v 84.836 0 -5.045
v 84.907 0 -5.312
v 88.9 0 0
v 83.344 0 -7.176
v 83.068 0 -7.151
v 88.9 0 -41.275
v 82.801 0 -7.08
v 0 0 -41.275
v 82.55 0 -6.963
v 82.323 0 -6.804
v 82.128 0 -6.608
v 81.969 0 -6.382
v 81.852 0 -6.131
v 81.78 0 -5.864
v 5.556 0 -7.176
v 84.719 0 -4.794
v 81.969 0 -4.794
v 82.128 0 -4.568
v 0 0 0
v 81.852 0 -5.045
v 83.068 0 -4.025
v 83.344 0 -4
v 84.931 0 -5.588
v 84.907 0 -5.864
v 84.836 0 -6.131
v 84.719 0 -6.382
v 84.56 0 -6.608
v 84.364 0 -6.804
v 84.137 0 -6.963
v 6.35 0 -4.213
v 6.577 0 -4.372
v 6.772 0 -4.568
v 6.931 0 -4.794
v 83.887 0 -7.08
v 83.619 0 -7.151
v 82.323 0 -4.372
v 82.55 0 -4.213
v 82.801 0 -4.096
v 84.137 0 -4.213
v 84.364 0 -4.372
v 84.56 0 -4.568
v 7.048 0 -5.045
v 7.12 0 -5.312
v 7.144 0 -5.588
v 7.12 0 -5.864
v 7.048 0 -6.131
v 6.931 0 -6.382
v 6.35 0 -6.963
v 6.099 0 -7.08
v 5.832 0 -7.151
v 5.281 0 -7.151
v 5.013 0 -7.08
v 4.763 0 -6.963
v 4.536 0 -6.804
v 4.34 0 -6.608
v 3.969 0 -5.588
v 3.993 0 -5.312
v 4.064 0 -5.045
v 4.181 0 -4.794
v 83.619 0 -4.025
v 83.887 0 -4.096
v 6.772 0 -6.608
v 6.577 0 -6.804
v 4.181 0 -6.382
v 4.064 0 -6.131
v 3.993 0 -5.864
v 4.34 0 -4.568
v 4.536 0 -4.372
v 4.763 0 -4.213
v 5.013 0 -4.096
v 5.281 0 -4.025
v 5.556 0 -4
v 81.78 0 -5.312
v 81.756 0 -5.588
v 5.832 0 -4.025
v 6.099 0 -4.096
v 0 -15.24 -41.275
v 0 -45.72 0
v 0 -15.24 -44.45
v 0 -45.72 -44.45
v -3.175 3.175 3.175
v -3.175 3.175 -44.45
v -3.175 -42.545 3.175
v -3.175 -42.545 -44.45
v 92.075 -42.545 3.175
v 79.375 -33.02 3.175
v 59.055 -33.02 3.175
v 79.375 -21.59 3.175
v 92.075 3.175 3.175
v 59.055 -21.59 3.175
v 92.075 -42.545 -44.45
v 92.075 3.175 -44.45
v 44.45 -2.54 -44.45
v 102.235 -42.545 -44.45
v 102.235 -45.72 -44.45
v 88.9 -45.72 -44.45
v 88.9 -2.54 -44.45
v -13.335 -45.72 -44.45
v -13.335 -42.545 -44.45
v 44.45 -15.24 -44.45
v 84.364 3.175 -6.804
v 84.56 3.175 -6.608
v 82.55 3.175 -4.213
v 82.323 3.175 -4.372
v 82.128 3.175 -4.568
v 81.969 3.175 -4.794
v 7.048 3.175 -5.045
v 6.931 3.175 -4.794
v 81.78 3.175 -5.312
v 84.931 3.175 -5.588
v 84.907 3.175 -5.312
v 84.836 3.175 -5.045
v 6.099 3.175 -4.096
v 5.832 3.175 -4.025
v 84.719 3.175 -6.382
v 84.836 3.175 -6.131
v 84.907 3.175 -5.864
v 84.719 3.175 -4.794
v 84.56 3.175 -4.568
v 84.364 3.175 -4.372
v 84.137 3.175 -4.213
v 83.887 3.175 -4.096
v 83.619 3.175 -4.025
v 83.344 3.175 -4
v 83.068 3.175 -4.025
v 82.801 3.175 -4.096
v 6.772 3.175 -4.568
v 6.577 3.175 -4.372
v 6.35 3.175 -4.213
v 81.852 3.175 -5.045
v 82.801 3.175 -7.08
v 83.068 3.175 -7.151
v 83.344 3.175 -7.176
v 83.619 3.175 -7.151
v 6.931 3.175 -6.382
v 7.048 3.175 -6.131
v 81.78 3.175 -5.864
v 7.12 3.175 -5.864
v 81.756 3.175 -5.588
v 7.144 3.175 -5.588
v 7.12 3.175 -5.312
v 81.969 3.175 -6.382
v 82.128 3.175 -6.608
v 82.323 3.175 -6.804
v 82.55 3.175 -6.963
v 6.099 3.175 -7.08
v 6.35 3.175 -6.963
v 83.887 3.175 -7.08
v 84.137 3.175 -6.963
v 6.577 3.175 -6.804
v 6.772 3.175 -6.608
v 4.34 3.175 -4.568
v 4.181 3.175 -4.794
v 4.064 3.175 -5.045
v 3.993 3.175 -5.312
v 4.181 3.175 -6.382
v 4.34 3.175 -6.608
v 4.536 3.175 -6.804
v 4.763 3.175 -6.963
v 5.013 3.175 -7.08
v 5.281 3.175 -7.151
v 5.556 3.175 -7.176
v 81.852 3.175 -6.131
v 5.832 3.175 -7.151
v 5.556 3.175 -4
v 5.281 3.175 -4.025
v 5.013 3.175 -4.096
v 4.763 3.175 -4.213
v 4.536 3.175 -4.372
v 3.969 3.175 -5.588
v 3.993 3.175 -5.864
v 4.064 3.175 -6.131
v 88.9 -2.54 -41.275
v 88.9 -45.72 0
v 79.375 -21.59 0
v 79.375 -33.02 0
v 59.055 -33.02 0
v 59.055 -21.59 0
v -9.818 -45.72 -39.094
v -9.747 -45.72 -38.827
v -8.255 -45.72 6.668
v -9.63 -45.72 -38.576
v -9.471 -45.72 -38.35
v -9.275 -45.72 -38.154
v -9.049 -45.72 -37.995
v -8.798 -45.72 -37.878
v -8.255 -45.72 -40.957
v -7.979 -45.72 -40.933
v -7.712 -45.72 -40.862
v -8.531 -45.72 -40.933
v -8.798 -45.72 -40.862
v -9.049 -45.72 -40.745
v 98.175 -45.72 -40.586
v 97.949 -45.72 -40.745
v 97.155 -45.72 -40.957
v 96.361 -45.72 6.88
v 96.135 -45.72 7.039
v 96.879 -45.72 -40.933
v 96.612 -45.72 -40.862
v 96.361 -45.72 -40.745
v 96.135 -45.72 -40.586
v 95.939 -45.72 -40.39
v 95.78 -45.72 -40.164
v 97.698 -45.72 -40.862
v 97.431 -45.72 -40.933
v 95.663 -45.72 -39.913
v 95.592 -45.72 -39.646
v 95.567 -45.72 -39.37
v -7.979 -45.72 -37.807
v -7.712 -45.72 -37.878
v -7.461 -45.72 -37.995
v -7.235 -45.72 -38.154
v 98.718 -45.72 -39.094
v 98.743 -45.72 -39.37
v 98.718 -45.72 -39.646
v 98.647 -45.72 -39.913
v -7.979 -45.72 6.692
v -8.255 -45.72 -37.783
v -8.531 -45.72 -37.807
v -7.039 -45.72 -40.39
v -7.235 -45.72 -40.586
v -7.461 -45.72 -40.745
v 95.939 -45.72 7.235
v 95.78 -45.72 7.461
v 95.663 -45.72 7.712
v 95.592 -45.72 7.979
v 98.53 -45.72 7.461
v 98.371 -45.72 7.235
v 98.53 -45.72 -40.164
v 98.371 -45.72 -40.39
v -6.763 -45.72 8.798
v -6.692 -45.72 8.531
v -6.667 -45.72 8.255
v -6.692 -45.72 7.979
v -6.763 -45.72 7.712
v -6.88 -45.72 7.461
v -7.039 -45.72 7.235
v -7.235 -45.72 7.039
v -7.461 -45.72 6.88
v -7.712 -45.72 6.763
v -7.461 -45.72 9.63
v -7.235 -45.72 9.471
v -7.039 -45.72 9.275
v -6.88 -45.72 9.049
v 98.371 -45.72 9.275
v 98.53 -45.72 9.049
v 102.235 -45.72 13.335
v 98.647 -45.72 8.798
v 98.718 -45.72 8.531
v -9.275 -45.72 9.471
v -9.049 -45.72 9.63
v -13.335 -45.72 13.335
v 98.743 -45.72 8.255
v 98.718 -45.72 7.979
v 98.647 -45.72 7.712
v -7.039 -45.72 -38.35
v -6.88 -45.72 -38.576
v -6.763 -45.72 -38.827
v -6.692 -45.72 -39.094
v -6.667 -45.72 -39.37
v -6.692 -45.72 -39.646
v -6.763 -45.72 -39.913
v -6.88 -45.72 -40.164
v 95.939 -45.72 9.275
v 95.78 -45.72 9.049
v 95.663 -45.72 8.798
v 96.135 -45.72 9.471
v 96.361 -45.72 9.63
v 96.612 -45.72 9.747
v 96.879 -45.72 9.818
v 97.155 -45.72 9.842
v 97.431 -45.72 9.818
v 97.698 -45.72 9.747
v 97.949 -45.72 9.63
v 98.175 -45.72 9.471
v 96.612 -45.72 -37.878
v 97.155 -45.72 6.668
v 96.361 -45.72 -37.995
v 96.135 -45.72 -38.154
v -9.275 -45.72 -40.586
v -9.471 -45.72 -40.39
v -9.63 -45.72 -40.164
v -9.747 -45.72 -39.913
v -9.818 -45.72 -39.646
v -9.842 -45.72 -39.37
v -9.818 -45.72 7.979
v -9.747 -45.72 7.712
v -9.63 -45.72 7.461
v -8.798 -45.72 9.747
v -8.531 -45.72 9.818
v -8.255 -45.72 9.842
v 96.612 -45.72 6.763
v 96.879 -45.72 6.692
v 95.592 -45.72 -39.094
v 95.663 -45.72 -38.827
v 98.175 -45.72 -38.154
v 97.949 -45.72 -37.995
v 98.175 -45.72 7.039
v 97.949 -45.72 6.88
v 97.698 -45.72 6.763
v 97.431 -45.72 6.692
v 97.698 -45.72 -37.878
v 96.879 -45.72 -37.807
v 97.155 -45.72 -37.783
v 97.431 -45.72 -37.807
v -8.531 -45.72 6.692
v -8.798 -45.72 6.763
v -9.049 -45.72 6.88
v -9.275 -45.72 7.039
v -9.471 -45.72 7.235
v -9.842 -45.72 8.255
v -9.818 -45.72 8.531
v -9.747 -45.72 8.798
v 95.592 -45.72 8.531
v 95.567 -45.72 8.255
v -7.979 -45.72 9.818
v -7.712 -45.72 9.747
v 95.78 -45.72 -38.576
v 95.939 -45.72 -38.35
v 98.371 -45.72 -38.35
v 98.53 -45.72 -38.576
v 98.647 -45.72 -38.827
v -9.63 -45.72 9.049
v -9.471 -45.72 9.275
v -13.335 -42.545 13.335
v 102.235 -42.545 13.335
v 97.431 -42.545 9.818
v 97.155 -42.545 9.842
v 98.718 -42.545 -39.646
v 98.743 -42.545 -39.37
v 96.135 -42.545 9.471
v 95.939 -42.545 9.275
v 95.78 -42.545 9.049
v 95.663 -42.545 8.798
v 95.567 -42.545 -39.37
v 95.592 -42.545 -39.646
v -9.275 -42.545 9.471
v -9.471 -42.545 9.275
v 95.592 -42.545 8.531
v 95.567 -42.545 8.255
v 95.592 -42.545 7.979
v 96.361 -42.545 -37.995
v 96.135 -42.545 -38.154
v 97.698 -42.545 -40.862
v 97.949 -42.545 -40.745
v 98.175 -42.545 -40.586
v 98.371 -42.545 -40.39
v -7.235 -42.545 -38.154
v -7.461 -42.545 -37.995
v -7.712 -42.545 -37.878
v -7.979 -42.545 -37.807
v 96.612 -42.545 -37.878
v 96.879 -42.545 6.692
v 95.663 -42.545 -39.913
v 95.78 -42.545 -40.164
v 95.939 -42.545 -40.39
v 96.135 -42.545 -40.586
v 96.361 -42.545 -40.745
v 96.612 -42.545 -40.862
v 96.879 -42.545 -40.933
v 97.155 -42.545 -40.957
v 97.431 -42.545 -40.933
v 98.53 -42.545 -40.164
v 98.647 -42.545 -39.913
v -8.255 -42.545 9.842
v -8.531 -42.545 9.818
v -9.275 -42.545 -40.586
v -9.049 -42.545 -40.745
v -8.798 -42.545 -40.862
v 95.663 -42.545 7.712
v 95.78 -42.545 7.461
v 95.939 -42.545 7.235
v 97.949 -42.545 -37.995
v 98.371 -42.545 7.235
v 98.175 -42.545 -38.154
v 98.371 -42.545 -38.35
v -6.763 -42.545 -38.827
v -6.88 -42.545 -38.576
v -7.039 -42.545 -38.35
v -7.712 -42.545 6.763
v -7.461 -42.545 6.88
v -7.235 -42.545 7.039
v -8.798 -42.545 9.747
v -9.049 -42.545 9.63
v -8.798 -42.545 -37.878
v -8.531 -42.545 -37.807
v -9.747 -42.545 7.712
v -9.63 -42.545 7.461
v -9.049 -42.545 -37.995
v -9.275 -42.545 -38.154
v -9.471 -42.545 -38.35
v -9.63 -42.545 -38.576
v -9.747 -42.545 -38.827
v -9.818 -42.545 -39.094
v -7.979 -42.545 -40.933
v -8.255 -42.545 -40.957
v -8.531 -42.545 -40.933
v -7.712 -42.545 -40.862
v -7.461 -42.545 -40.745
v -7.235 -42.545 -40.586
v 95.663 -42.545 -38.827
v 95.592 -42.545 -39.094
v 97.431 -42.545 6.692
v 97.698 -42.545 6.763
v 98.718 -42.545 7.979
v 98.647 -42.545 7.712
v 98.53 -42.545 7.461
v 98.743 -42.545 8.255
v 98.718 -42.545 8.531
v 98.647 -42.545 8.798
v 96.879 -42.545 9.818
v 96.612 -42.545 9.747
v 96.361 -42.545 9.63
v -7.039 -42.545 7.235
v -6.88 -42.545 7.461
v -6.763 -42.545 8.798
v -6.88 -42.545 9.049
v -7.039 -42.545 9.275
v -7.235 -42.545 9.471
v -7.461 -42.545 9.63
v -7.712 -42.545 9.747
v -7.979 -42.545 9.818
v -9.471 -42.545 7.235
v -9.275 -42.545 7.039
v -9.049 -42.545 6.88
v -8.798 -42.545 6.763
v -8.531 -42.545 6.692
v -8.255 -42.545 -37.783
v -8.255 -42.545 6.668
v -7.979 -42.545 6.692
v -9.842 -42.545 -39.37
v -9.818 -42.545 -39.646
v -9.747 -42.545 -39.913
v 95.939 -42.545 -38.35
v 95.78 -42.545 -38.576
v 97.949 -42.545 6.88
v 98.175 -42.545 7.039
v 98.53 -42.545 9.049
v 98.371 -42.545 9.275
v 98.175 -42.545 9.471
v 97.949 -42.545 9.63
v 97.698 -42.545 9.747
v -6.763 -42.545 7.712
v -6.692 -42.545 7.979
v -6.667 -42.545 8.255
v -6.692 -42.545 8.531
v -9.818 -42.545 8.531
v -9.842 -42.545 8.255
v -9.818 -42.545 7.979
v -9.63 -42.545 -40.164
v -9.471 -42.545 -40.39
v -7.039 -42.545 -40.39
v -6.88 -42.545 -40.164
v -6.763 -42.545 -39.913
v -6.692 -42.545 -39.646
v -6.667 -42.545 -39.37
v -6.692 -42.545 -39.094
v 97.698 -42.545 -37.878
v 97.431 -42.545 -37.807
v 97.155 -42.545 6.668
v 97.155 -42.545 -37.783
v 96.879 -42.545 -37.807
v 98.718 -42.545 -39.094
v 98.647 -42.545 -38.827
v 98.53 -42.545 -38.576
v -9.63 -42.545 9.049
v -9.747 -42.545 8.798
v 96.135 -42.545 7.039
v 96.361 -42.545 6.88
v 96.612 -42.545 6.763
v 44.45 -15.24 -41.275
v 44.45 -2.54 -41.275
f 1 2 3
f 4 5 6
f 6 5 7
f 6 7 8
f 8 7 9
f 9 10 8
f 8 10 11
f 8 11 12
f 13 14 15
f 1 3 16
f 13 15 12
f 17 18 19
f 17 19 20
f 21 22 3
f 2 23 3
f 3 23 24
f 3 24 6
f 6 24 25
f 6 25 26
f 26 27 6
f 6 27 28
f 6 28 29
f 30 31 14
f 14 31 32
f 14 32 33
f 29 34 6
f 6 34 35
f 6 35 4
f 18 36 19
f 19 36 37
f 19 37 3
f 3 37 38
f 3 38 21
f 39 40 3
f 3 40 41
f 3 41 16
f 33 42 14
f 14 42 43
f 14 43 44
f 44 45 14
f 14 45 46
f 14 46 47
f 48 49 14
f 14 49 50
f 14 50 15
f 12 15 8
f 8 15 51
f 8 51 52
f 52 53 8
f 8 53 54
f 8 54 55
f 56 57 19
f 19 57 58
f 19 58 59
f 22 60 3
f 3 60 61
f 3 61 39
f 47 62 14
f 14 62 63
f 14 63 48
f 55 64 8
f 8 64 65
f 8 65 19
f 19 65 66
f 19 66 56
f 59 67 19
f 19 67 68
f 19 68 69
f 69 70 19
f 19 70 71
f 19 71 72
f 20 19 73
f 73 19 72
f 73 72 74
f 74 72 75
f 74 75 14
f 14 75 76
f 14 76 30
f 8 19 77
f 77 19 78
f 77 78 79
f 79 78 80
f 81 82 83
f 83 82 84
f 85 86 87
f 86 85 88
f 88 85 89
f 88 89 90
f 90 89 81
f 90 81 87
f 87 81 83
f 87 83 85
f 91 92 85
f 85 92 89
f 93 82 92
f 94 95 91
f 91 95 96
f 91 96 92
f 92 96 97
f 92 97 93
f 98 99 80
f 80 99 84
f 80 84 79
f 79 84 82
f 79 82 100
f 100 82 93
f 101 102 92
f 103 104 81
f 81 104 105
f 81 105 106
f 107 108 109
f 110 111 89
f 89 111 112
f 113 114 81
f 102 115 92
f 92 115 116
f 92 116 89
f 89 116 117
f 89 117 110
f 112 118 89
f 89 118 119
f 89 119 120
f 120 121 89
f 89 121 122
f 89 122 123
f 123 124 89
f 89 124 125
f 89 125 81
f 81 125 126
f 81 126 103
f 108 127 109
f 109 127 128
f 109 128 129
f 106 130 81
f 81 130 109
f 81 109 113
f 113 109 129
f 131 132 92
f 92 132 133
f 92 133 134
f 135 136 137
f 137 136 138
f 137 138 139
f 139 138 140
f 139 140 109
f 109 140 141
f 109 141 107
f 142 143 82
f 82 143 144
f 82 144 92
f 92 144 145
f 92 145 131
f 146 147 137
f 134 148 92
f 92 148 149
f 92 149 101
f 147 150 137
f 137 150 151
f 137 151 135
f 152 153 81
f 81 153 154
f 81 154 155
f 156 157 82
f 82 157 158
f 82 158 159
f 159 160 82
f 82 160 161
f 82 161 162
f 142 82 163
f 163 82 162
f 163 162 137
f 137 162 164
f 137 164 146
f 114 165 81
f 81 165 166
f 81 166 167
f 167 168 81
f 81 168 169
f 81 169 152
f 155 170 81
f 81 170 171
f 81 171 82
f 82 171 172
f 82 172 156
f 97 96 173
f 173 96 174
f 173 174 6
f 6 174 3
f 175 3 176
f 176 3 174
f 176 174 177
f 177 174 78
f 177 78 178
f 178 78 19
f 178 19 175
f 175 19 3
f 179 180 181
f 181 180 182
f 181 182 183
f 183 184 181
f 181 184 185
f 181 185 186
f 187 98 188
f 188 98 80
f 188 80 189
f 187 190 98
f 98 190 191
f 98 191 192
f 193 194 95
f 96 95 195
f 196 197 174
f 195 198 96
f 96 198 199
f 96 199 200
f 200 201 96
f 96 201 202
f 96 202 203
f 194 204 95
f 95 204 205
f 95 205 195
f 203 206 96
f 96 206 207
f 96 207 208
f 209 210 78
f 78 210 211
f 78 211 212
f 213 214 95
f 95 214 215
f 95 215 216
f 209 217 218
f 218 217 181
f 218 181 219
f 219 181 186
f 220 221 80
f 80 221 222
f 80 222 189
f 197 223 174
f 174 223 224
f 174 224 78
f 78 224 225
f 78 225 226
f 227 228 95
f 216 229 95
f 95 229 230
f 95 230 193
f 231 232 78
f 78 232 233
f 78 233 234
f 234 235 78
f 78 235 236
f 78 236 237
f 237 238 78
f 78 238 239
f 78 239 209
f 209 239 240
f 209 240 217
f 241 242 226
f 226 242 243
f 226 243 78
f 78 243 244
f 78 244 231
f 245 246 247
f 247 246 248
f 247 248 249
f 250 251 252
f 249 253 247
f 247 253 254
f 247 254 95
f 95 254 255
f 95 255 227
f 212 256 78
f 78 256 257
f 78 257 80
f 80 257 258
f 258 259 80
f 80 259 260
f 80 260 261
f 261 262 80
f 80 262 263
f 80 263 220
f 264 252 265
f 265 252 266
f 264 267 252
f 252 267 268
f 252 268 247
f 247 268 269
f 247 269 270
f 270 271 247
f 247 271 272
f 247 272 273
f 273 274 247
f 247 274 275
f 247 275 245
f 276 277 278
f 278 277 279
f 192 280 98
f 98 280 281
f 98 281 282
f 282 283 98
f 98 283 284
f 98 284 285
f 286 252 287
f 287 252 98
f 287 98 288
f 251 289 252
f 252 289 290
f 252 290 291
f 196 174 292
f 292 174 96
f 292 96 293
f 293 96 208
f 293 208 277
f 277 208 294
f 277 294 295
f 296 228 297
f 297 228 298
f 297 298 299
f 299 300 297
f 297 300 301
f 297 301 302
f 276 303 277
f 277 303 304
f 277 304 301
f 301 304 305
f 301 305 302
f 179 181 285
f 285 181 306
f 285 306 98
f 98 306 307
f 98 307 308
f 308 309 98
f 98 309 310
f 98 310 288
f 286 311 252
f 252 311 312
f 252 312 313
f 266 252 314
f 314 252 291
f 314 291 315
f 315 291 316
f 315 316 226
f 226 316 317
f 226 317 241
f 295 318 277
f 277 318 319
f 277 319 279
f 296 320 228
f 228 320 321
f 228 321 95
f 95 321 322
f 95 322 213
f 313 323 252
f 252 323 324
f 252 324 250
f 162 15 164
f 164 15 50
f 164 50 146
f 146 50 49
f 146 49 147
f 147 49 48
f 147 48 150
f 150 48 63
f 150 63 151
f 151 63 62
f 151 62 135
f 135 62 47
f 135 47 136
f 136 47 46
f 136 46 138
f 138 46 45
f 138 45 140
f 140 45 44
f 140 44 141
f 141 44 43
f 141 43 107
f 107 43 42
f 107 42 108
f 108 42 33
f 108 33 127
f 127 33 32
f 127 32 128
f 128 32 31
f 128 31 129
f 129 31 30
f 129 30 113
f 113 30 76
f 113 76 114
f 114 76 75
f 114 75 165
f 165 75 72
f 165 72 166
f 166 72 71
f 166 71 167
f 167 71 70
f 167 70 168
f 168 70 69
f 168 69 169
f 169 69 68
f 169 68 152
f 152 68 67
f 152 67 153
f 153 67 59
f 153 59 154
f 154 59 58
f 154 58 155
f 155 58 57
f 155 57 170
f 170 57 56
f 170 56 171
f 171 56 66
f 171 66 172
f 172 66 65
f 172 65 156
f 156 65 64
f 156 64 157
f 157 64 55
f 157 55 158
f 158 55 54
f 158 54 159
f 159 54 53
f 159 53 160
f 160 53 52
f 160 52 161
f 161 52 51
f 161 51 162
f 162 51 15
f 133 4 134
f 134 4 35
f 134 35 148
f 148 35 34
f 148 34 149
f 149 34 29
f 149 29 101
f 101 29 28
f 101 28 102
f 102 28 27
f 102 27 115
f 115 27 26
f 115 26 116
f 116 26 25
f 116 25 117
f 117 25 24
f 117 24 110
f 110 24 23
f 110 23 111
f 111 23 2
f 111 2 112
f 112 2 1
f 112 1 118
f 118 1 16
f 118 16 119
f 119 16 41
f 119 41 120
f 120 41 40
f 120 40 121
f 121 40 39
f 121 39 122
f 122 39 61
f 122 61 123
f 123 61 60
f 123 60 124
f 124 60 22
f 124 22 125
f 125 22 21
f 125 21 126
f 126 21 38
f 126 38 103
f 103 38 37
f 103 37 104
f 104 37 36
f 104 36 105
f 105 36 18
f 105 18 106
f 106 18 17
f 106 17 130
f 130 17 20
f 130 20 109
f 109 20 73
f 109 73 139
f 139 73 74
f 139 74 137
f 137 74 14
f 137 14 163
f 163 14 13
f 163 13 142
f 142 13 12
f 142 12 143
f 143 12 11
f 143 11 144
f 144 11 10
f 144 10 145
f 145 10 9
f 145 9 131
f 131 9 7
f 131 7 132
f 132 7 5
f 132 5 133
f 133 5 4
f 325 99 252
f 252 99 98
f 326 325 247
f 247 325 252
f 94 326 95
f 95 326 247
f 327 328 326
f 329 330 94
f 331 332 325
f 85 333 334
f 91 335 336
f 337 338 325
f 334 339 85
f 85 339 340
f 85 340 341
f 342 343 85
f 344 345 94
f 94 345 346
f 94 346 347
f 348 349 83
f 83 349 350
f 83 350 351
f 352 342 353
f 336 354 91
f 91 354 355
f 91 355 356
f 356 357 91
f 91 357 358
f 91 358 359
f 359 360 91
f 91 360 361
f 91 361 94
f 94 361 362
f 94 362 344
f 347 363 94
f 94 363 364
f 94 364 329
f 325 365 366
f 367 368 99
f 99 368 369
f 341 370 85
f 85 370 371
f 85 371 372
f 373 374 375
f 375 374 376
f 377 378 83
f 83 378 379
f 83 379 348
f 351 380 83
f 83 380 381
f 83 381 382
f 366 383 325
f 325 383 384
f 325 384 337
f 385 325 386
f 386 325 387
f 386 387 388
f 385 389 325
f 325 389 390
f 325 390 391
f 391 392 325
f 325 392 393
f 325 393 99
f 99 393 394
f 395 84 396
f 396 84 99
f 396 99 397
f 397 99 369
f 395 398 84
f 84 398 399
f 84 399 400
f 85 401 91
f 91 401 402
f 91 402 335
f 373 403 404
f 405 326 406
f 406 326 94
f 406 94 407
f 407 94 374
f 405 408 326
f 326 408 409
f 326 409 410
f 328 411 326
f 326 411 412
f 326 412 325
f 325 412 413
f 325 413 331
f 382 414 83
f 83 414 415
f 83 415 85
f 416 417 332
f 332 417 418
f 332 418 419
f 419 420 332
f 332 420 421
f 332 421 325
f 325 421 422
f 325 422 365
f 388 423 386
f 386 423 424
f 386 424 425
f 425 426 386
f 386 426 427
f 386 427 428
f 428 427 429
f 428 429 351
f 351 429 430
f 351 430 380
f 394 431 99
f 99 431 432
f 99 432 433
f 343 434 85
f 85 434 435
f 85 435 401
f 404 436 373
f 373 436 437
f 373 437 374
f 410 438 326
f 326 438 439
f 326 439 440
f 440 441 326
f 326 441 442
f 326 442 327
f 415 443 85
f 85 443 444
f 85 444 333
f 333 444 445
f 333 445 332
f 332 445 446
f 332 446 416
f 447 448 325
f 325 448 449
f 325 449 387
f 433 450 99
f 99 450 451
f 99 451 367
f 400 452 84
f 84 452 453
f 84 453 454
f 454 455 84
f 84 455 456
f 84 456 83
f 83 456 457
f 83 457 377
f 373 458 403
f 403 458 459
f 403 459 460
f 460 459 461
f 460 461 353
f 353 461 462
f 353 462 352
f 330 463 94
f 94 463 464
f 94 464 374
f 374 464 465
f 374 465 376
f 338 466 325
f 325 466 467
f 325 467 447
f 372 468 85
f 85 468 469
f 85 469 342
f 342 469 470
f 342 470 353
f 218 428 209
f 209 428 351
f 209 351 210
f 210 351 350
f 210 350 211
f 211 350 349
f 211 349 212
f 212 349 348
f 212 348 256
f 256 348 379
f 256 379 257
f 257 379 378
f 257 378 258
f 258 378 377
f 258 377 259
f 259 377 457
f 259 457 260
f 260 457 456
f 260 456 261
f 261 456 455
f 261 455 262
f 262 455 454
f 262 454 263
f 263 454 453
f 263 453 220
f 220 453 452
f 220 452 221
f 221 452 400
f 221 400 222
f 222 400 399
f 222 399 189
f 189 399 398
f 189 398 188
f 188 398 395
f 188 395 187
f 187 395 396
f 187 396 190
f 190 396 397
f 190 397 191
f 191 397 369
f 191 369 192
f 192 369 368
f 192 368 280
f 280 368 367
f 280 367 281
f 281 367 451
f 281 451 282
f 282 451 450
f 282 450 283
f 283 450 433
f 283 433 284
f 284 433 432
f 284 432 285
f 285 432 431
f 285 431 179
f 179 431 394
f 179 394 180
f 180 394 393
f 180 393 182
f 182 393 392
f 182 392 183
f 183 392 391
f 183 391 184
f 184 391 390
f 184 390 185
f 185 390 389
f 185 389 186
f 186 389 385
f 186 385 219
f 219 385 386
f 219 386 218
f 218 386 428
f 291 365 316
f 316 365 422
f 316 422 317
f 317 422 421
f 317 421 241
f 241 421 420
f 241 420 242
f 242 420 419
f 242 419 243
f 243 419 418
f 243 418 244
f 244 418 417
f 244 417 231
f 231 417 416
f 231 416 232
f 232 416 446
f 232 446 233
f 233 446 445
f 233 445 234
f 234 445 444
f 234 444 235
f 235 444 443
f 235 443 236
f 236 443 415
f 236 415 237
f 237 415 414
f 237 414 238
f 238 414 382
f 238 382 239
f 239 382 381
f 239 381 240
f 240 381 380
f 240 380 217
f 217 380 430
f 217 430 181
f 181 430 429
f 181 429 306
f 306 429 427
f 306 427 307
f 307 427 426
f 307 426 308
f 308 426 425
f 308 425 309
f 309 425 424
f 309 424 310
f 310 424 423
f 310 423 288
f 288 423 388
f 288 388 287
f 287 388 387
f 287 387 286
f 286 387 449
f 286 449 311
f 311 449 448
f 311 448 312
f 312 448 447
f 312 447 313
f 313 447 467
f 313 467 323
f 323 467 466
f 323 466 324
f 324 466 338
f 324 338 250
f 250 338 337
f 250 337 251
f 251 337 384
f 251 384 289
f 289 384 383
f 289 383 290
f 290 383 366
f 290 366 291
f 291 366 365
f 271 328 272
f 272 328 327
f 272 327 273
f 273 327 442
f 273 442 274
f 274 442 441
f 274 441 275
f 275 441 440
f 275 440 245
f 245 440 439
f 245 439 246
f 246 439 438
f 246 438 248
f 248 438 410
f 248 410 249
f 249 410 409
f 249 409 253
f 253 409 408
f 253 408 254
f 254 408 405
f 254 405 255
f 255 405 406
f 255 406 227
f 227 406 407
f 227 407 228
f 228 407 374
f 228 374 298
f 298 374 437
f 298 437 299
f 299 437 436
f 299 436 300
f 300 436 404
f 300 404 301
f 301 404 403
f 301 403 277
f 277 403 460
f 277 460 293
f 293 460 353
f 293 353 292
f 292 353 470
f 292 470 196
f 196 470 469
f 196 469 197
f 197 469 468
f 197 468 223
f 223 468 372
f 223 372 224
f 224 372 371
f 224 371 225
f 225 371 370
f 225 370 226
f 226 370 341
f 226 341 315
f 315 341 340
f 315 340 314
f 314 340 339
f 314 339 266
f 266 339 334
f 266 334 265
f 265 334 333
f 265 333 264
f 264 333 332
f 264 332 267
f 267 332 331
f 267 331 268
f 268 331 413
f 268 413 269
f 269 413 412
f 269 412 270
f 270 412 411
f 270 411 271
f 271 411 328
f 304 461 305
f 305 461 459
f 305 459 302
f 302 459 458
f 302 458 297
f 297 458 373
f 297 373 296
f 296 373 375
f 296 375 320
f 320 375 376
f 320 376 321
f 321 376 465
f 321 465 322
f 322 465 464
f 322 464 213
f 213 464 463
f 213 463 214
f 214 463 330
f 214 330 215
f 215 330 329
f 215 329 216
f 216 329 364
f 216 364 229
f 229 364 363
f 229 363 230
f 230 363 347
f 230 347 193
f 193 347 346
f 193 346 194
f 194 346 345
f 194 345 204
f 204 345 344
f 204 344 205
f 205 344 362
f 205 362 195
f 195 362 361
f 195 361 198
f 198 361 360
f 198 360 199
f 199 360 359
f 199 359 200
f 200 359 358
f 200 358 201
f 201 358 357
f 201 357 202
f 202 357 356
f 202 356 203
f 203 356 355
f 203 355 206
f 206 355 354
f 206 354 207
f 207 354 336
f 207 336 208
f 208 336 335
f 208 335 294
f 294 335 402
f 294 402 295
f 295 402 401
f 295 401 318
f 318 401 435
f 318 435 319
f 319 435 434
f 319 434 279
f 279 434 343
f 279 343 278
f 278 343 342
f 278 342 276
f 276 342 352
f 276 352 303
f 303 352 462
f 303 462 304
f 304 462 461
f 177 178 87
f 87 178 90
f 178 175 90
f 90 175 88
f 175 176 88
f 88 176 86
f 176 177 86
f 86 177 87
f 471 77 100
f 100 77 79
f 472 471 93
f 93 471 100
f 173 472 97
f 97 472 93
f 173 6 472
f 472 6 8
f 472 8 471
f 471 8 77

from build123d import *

# Parameters (mm, degrees)
SKETCH1_W                = 88.9
SKETCH1_H                = 44.45
BOSS_EXTRUDE1_DEPTH      = 3.175
BOSS_EXTRUDE2_DEPTH      = 45.72
BOSS_EXTRUDE2_DEPTH_BACK = 3.175
SKETCH3_R                = 1.5875
CUT_EXTRUDE1_DEPTH       = 45.72
SKETCH4_W                = 10.16
SKETCH4_H                = 47.625
SKETCH4_H_2              = 10.16
SKETCH4_W_2              = 95.25
BOSS_EXTRUDE3_DEPTH      = 3.175
SKETCH5_R                = 1.5875
CUT_EXTRUDE2_DEPTH       = 3.175
SKETCH6_W                = 20.32
SKETCH6_H                = 11.43
CUT_EXTRUDE3_DEPTH       = 3.175
SKETCH7_W                = 44.45
SKETCH7_H                = 12.7
BOSS_EXTRUDE4_DEPTH      = 3.175


with BuildPart() as part:
    # Sketch1 → Boss-Extrude1 (new body)
    with BuildSketch(Plane(origin=(0, 0, 0), x_dir=(1, 0, 0), z_dir=(0, 1, 0))):
        with Locations((44.45, 22.225)):
            Rectangle(SKETCH1_W, SKETCH1_H)
    extrude(amount=BOSS_EXTRUDE1_DEPTH)

    # Sketch2 → Boss-Extrude2 (add, two sides: drawn at the far end of the back side and taken through both)
    with BuildSketch(Plane.XZ.offset(-BOSS_EXTRUDE2_DEPTH_BACK)):
        Polygon((-3.175, 3.175), (-3.175, -44.45), (0, -44.45), (0, 0), (88.9, 0), (88.9, -44.45), (92.075, -44.45), (92.075, 3.175), align=None)
    extrude(amount=BOSS_EXTRUDE2_DEPTH + BOSS_EXTRUDE2_DEPTH_BACK)

    # Sketch3 → Cut-Extrude1 (cut)
    with BuildSketch(Plane.XZ):
        with Locations(Location((83.34375, -5.588, 0), (0, 0, 270))):
            Circle(SKETCH3_R)
        with Locations(Location((5.55625, -5.588, 0), (0, 0, 270))):
            Circle(SKETCH3_R)
    extrude(amount=-CUT_EXTRUDE1_DEPTH, mode=Mode.SUBTRACT)

    # Sketch4 → Boss-Extrude3 (add)
    with BuildSketch(Plane.XZ.offset(45.72)):
        with Locations((-8.255, -20.6375)):
            Rectangle(SKETCH4_W, SKETCH4_H)
        with Locations((-8.255, 8.255)):
            Rectangle(SKETCH4_W, SKETCH4_H_2)
        with Locations((44.45, 8.255)):
            Rectangle(SKETCH4_W_2, SKETCH4_H_2)
        Polygon((92.075, -44.45), (102.235, -44.45), (102.235, 13.335), (92.075, 13.335), (92.075, 3.175), align=None)
    extrude(amount=-BOSS_EXTRUDE3_DEPTH)

    # Sketch5 → Cut-Extrude2 (cut)
    with BuildSketch(Plane(origin=(0, -42.545, 0), x_dir=(1, 0, 0), z_dir=(0, 1, 0))):
        with Locations(Location((-8.255, 39.37, 0), (0, 0, 270))):
            Circle(SKETCH5_R)
        with Locations(Location((-8.255, -8.255, 0), (0, 0, 270))):
            Circle(SKETCH5_R)
        with Locations(Location((97.155, -8.255, 0), (0, 0, 270))):
            Circle(SKETCH5_R)
        with Locations(Location((97.155, 39.37, 0), (0, 0, 270))):
            Circle(SKETCH5_R)
    extrude(amount=-CUT_EXTRUDE2_DEPTH, mode=Mode.SUBTRACT)

    # Sketch6 → Cut-Extrude3 (cut)
    with BuildSketch(Plane.XY.offset(3.175)):
        with Locations((69.215, -27.305)):
            Rectangle(SKETCH6_W, SKETCH6_H)
    extrude(amount=-CUT_EXTRUDE3_DEPTH, mode=Mode.SUBTRACT)

    # Sketch7 → Boss-Extrude4 (add)
    with BuildSketch(Plane(origin=(0, 0, -44.45), x_dir=(-1, 0, 0), z_dir=(0, 0, -1))):
        with Locations((-22.225, -8.89)):
            Rectangle(SKETCH7_W, SKETCH7_H)
        Polygon((-88.9, 0), (-88.9, -2.54), (-44.45, -2.54), (0, -2.54), (0, 0), align=None)
    extrude(amount=-BOSS_EXTRUDE4_DEPTH)


solid = part.part
